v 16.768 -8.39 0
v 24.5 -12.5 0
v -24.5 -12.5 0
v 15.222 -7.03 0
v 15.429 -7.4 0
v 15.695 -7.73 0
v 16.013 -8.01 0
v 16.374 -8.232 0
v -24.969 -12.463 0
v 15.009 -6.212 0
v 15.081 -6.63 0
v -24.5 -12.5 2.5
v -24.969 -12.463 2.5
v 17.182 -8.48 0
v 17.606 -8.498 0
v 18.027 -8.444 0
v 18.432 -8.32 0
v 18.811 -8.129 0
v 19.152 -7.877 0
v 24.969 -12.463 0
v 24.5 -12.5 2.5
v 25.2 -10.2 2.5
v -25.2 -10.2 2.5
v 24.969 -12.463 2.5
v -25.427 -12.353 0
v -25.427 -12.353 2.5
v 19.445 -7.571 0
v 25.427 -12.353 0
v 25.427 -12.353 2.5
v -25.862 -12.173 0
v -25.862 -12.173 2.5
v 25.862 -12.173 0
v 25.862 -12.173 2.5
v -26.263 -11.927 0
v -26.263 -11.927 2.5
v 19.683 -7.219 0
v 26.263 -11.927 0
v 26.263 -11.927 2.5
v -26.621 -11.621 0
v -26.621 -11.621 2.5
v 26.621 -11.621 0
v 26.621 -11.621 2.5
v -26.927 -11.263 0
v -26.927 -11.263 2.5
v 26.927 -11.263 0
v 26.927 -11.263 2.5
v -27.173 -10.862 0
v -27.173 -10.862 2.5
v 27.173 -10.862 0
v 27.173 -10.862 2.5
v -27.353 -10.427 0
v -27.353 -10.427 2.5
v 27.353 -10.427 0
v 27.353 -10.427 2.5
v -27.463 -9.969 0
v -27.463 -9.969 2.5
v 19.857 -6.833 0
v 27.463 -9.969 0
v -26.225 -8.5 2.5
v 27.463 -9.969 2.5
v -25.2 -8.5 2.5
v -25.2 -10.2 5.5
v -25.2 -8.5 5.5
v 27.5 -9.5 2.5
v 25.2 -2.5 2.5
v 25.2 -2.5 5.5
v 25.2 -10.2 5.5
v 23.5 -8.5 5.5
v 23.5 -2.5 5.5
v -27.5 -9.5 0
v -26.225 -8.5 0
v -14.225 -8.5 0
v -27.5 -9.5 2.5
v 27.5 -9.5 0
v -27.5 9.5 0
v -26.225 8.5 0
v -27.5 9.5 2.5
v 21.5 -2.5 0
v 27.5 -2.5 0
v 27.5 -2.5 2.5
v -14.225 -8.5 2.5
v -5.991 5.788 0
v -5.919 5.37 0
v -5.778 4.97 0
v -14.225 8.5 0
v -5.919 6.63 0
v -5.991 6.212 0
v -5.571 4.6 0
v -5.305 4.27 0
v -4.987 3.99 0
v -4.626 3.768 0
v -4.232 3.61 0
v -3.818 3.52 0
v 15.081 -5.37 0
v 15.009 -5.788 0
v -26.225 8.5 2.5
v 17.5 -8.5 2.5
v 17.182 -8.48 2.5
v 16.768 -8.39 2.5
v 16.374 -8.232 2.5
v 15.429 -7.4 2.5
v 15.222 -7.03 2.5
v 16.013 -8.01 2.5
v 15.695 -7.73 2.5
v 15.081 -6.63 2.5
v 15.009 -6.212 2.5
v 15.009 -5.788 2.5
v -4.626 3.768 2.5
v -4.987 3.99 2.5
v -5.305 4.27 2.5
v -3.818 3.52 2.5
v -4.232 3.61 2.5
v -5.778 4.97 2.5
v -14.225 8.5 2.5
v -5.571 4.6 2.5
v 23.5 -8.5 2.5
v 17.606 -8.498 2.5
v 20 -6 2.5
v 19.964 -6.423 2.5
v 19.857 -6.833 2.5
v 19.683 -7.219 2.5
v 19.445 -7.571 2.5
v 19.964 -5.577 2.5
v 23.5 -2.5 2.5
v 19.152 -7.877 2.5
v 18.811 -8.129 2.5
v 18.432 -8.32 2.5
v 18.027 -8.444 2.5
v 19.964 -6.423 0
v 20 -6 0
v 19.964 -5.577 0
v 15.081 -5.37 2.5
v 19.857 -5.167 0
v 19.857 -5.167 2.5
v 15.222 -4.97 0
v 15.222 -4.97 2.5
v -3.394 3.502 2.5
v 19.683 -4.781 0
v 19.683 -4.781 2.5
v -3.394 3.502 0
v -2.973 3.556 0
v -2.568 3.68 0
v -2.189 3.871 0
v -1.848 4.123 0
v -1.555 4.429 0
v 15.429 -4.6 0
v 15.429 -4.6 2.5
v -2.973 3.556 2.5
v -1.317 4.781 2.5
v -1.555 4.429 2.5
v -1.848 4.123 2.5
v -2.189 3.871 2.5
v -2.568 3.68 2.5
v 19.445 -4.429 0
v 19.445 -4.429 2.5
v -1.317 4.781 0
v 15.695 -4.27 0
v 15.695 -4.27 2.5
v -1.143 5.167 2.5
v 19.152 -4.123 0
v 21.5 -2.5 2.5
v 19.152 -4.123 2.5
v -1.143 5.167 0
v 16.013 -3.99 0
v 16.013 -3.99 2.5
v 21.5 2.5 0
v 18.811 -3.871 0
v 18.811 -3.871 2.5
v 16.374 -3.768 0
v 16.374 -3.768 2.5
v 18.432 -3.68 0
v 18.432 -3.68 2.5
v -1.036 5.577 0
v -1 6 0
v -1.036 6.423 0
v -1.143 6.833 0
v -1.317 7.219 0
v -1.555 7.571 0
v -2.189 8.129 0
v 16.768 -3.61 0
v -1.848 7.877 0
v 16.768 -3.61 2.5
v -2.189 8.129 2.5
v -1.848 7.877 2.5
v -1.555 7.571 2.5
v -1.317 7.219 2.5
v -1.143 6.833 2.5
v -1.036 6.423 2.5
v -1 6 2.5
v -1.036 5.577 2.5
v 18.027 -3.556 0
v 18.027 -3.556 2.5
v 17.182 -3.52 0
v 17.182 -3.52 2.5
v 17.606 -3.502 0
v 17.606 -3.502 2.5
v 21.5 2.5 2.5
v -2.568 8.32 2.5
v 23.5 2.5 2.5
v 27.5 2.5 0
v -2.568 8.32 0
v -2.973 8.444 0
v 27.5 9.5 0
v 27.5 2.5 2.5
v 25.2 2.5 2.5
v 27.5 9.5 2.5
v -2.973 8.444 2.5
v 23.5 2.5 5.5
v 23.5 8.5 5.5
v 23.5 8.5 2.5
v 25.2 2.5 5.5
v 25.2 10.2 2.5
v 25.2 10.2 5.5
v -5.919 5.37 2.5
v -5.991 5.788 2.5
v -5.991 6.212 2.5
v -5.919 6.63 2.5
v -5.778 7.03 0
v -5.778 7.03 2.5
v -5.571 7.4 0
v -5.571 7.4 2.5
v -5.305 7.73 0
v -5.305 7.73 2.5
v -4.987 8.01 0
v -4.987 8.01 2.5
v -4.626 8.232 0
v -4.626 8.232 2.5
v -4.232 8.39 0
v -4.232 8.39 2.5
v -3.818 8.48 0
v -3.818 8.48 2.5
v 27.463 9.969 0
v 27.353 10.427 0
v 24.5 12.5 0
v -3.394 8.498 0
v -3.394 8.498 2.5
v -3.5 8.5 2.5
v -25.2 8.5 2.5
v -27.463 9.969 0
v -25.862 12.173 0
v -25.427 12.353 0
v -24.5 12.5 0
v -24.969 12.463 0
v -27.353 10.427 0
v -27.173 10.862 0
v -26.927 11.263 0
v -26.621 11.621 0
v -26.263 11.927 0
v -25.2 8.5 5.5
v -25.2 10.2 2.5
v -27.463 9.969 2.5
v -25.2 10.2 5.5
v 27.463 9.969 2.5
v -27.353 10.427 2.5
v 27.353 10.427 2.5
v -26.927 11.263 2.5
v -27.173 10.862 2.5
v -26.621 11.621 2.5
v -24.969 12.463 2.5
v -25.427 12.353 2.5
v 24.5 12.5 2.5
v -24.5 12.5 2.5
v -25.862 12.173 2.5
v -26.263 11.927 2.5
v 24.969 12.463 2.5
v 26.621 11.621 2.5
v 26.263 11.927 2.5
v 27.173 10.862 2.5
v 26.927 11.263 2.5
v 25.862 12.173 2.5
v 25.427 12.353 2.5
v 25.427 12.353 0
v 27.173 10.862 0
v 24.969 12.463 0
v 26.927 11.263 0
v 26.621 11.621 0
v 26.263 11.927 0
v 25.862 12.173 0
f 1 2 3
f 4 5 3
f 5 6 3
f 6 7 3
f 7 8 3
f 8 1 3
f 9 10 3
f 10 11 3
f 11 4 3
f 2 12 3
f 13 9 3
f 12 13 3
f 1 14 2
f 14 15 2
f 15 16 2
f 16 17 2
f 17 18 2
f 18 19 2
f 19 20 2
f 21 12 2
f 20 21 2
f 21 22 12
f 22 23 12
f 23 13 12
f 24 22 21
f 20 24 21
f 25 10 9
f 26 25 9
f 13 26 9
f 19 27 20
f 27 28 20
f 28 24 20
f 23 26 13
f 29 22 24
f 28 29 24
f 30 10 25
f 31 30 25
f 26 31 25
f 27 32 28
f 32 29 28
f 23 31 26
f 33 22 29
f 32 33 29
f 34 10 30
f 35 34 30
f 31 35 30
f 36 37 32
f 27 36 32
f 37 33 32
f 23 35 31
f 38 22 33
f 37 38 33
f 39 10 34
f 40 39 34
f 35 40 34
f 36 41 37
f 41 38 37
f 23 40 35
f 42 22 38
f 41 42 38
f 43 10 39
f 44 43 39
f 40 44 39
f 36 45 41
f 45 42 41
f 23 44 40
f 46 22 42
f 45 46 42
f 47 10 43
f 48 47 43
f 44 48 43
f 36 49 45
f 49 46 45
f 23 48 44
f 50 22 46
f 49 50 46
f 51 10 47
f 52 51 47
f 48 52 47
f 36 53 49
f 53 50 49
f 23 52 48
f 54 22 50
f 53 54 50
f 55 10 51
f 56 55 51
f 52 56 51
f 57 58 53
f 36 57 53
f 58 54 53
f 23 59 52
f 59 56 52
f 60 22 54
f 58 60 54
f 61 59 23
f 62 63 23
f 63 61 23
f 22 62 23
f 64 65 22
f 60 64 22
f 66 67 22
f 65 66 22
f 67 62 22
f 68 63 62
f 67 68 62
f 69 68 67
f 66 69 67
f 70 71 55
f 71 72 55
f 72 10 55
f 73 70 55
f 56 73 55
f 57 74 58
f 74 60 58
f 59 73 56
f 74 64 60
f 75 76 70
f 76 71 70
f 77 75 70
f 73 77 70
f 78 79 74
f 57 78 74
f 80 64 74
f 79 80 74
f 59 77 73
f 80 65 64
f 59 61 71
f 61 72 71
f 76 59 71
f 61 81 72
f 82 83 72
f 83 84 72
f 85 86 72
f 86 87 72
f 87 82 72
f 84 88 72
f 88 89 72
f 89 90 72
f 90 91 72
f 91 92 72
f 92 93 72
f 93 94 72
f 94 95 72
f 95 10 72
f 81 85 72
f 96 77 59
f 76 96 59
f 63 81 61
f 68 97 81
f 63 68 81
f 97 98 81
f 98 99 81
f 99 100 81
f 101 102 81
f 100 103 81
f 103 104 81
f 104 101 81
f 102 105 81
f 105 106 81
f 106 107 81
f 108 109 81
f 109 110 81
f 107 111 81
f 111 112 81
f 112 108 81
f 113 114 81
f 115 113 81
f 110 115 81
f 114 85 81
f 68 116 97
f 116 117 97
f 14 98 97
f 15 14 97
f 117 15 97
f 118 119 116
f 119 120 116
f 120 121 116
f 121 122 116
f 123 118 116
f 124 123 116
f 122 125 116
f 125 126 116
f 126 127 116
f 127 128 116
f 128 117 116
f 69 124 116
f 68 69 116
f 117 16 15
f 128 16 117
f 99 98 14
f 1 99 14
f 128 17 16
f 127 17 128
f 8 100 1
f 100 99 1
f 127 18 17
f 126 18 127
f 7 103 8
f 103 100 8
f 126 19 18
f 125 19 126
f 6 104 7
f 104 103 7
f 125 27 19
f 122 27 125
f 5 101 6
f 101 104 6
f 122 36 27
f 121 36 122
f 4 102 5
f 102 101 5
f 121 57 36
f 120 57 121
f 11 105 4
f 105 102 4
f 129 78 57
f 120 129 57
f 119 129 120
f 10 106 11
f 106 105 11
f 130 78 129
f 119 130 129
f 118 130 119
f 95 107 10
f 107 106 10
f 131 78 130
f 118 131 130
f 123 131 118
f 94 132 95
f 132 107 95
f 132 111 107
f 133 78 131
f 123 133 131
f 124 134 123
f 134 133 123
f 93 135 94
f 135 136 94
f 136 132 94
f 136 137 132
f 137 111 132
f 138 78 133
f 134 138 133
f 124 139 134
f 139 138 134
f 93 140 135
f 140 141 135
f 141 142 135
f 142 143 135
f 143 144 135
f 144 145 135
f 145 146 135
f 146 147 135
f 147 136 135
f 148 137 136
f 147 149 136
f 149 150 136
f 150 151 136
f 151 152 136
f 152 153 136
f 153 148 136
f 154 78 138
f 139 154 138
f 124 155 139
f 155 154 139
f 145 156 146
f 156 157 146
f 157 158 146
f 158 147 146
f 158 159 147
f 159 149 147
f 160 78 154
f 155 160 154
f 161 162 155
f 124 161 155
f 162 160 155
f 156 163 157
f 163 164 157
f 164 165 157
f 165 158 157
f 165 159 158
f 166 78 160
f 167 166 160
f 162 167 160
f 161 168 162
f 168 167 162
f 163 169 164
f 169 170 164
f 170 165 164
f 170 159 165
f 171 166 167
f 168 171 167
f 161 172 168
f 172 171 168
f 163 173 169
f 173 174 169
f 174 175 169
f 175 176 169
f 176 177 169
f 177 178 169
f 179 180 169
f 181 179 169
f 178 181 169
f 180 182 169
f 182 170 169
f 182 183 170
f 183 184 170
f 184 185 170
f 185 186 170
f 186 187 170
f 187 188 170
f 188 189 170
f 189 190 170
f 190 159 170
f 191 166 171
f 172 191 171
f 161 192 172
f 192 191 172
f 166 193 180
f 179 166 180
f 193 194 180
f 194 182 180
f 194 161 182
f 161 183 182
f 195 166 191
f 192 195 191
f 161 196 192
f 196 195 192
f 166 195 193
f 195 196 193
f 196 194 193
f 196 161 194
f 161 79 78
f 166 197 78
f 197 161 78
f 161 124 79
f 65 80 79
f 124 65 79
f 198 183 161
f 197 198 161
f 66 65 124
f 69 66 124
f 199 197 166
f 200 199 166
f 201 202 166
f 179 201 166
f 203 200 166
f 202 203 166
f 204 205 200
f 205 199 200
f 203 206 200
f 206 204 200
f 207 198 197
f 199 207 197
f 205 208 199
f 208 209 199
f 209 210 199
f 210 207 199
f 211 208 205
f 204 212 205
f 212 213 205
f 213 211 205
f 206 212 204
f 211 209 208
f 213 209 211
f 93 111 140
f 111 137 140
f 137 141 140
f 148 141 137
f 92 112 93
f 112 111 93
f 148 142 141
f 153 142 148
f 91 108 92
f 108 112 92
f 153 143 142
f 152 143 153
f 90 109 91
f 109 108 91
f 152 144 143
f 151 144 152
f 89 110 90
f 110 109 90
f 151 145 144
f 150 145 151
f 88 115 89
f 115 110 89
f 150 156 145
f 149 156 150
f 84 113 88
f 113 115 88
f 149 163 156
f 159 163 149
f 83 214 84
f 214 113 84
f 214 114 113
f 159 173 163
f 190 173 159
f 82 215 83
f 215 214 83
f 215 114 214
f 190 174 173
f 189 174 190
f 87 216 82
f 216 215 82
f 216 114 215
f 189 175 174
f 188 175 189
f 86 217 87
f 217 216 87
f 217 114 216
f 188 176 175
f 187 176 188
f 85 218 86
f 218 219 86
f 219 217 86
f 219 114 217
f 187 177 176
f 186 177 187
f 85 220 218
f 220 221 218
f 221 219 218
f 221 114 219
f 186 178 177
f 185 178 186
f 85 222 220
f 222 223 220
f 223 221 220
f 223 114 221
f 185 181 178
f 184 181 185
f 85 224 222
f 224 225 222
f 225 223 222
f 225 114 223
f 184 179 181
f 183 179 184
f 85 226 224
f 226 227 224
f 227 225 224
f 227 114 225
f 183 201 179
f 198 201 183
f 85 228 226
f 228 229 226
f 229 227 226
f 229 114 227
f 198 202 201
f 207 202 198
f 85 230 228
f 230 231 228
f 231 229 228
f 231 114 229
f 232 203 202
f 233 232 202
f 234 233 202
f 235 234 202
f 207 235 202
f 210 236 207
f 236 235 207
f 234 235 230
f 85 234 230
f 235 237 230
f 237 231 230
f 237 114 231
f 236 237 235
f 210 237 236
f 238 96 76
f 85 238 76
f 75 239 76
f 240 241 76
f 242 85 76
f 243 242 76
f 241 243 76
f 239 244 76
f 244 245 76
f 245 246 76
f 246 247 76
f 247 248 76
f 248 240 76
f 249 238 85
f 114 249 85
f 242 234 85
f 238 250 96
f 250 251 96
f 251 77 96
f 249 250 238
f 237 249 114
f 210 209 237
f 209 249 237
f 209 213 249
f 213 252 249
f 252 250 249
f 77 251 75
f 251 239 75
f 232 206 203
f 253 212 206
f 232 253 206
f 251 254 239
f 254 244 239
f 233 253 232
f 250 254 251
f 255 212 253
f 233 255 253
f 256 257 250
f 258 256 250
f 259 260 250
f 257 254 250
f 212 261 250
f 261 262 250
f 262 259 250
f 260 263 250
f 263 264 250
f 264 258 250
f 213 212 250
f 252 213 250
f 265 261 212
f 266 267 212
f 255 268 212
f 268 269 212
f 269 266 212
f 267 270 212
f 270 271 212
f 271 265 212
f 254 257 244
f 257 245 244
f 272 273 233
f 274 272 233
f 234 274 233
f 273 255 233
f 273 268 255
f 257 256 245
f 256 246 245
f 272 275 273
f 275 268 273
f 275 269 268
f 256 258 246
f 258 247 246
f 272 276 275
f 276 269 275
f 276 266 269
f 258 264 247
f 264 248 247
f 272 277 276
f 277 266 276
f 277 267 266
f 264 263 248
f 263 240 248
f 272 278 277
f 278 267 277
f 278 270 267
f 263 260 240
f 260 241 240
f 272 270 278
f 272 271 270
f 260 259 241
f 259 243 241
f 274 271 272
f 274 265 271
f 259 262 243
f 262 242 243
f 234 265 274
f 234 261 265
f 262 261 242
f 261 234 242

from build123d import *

# Parameters (mm, degrees)
CROQUIS1_W                 = 55
CROQUIS1_H                 = 25
SALIENTE_EXTRUIR1_DEPTH    = 2.5
CROQUIS7_W                 = 51
CROQUIS7_H                 = 21
CROQUIS7_W_2               = 47
CROQUIS7_H_2               = 17
SALIENTE_EXTRUIR4_DEPTH    = 3
REDONDEO2_R                = 3
CROQUIS8_W                 = 12
CROQUIS8_H                 = 17
CORTAR_EXTRUIR5_DEPTH      = 11
CORTAR_EXTRUIR5_DEPTH_BACK = 8
CROQUIS9_W                 = 6
CROQUIS9_H                 = 5
CORTAR_EXTRUIR6_DEPTH      = 8
CROQUIS11_R                = 2.5
CORTAR_EXTRUIR8_DEPTH      = 3.5
CROQUIS12_W                = 51
CROQUIS12_H                = 21
CROQUIS12_W_2              = 50.4
CROQUIS12_H_2              = 20.4
CORTAR_EXTRUIR11_DEPTH     = 3


with BuildPart() as part:
    # Croquis1 → Saliente-Extruir1 (new body)
    with BuildSketch(Plane.XY):
        Rectangle(CROQUIS1_W, CROQUIS1_H)
    extrude(amount=SALIENTE_EXTRUIR1_DEPTH)

    # Croquis7 → Saliente-Extruir4 (add)
    with BuildSketch(Plane.XY.offset(2.5)):
        Rectangle(CROQUIS7_W, CROQUIS7_H)
        Rectangle(CROQUIS7_W_2, CROQUIS7_H_2, mode=Mode.SUBTRACT)
    extrude(amount=SALIENTE_EXTRUIR4_DEPTH)

    # Redondeo2
    redondeo2_edges = [part.edges().sort_by_distance(p)[0] for p in [
        (-27.5, -12.5, 1.25),
        (-27.5, 12.5, 1.25),
        (27.5, 12.5, 1.25),
        (27.5, -12.5, 1.25),
    ]]
    fillet(redondeo2_edges, radius=REDONDEO2_R)

    # Croquis8 → Cortar-Extruir5 (cut, two sides)
    with BuildSketch(Plane.XY.offset(2.5)) as cortar_extruir5_sk:
        with Locations((-20.225004992, 0)):
            Rectangle(CROQUIS8_W, CROQUIS8_H)
    extrude(amount=CORTAR_EXTRUIR5_DEPTH, mode=Mode.SUBTRACT)
    extrude(cortar_extruir5_sk.sketch, amount=-CORTAR_EXTRUIR5_DEPTH_BACK, mode=Mode.SUBTRACT)

    # Croquis9 → Cortar-Extruir6 (cut)
    with BuildSketch(Plane(origin=(0, 0, 0), x_dir=(-1, 0, 0), z_dir=(0, 0, -1))):
        with Locations((-24.5, 0)):
            Rectangle(CROQUIS9_W, CROQUIS9_H)
    extrude(amount=-CORTAR_EXTRUIR6_DEPTH, mode=Mode.SUBTRACT)

    # Croquis11 → Cortar-Extruir8 (cut, through all)
    with BuildSketch(Plane.XY.offset(2.5)):
        with Locations((-3.5, 6)):
            Circle(CROQUIS11_R)
        with Locations((17.5, -6)):
            Circle(CROQUIS11_R)
    extrude(amount=-CORTAR_EXTRUIR8_DEPTH, mode=Mode.SUBTRACT)

    # Croquis12 → Cortar-Extruir11 (cut)
    with BuildSketch(Plane.XY.offset(5.5)):
        Rectangle(CROQUIS12_W, CROQUIS12_H)
        Rectangle(CROQUIS12_W_2, CROQUIS12_H_2, mode=Mode.SUBTRACT)
    extrude(amount=-CORTAR_EXTRUIR11_DEPTH, mode=Mode.SUBTRACT)


solid = part.part
